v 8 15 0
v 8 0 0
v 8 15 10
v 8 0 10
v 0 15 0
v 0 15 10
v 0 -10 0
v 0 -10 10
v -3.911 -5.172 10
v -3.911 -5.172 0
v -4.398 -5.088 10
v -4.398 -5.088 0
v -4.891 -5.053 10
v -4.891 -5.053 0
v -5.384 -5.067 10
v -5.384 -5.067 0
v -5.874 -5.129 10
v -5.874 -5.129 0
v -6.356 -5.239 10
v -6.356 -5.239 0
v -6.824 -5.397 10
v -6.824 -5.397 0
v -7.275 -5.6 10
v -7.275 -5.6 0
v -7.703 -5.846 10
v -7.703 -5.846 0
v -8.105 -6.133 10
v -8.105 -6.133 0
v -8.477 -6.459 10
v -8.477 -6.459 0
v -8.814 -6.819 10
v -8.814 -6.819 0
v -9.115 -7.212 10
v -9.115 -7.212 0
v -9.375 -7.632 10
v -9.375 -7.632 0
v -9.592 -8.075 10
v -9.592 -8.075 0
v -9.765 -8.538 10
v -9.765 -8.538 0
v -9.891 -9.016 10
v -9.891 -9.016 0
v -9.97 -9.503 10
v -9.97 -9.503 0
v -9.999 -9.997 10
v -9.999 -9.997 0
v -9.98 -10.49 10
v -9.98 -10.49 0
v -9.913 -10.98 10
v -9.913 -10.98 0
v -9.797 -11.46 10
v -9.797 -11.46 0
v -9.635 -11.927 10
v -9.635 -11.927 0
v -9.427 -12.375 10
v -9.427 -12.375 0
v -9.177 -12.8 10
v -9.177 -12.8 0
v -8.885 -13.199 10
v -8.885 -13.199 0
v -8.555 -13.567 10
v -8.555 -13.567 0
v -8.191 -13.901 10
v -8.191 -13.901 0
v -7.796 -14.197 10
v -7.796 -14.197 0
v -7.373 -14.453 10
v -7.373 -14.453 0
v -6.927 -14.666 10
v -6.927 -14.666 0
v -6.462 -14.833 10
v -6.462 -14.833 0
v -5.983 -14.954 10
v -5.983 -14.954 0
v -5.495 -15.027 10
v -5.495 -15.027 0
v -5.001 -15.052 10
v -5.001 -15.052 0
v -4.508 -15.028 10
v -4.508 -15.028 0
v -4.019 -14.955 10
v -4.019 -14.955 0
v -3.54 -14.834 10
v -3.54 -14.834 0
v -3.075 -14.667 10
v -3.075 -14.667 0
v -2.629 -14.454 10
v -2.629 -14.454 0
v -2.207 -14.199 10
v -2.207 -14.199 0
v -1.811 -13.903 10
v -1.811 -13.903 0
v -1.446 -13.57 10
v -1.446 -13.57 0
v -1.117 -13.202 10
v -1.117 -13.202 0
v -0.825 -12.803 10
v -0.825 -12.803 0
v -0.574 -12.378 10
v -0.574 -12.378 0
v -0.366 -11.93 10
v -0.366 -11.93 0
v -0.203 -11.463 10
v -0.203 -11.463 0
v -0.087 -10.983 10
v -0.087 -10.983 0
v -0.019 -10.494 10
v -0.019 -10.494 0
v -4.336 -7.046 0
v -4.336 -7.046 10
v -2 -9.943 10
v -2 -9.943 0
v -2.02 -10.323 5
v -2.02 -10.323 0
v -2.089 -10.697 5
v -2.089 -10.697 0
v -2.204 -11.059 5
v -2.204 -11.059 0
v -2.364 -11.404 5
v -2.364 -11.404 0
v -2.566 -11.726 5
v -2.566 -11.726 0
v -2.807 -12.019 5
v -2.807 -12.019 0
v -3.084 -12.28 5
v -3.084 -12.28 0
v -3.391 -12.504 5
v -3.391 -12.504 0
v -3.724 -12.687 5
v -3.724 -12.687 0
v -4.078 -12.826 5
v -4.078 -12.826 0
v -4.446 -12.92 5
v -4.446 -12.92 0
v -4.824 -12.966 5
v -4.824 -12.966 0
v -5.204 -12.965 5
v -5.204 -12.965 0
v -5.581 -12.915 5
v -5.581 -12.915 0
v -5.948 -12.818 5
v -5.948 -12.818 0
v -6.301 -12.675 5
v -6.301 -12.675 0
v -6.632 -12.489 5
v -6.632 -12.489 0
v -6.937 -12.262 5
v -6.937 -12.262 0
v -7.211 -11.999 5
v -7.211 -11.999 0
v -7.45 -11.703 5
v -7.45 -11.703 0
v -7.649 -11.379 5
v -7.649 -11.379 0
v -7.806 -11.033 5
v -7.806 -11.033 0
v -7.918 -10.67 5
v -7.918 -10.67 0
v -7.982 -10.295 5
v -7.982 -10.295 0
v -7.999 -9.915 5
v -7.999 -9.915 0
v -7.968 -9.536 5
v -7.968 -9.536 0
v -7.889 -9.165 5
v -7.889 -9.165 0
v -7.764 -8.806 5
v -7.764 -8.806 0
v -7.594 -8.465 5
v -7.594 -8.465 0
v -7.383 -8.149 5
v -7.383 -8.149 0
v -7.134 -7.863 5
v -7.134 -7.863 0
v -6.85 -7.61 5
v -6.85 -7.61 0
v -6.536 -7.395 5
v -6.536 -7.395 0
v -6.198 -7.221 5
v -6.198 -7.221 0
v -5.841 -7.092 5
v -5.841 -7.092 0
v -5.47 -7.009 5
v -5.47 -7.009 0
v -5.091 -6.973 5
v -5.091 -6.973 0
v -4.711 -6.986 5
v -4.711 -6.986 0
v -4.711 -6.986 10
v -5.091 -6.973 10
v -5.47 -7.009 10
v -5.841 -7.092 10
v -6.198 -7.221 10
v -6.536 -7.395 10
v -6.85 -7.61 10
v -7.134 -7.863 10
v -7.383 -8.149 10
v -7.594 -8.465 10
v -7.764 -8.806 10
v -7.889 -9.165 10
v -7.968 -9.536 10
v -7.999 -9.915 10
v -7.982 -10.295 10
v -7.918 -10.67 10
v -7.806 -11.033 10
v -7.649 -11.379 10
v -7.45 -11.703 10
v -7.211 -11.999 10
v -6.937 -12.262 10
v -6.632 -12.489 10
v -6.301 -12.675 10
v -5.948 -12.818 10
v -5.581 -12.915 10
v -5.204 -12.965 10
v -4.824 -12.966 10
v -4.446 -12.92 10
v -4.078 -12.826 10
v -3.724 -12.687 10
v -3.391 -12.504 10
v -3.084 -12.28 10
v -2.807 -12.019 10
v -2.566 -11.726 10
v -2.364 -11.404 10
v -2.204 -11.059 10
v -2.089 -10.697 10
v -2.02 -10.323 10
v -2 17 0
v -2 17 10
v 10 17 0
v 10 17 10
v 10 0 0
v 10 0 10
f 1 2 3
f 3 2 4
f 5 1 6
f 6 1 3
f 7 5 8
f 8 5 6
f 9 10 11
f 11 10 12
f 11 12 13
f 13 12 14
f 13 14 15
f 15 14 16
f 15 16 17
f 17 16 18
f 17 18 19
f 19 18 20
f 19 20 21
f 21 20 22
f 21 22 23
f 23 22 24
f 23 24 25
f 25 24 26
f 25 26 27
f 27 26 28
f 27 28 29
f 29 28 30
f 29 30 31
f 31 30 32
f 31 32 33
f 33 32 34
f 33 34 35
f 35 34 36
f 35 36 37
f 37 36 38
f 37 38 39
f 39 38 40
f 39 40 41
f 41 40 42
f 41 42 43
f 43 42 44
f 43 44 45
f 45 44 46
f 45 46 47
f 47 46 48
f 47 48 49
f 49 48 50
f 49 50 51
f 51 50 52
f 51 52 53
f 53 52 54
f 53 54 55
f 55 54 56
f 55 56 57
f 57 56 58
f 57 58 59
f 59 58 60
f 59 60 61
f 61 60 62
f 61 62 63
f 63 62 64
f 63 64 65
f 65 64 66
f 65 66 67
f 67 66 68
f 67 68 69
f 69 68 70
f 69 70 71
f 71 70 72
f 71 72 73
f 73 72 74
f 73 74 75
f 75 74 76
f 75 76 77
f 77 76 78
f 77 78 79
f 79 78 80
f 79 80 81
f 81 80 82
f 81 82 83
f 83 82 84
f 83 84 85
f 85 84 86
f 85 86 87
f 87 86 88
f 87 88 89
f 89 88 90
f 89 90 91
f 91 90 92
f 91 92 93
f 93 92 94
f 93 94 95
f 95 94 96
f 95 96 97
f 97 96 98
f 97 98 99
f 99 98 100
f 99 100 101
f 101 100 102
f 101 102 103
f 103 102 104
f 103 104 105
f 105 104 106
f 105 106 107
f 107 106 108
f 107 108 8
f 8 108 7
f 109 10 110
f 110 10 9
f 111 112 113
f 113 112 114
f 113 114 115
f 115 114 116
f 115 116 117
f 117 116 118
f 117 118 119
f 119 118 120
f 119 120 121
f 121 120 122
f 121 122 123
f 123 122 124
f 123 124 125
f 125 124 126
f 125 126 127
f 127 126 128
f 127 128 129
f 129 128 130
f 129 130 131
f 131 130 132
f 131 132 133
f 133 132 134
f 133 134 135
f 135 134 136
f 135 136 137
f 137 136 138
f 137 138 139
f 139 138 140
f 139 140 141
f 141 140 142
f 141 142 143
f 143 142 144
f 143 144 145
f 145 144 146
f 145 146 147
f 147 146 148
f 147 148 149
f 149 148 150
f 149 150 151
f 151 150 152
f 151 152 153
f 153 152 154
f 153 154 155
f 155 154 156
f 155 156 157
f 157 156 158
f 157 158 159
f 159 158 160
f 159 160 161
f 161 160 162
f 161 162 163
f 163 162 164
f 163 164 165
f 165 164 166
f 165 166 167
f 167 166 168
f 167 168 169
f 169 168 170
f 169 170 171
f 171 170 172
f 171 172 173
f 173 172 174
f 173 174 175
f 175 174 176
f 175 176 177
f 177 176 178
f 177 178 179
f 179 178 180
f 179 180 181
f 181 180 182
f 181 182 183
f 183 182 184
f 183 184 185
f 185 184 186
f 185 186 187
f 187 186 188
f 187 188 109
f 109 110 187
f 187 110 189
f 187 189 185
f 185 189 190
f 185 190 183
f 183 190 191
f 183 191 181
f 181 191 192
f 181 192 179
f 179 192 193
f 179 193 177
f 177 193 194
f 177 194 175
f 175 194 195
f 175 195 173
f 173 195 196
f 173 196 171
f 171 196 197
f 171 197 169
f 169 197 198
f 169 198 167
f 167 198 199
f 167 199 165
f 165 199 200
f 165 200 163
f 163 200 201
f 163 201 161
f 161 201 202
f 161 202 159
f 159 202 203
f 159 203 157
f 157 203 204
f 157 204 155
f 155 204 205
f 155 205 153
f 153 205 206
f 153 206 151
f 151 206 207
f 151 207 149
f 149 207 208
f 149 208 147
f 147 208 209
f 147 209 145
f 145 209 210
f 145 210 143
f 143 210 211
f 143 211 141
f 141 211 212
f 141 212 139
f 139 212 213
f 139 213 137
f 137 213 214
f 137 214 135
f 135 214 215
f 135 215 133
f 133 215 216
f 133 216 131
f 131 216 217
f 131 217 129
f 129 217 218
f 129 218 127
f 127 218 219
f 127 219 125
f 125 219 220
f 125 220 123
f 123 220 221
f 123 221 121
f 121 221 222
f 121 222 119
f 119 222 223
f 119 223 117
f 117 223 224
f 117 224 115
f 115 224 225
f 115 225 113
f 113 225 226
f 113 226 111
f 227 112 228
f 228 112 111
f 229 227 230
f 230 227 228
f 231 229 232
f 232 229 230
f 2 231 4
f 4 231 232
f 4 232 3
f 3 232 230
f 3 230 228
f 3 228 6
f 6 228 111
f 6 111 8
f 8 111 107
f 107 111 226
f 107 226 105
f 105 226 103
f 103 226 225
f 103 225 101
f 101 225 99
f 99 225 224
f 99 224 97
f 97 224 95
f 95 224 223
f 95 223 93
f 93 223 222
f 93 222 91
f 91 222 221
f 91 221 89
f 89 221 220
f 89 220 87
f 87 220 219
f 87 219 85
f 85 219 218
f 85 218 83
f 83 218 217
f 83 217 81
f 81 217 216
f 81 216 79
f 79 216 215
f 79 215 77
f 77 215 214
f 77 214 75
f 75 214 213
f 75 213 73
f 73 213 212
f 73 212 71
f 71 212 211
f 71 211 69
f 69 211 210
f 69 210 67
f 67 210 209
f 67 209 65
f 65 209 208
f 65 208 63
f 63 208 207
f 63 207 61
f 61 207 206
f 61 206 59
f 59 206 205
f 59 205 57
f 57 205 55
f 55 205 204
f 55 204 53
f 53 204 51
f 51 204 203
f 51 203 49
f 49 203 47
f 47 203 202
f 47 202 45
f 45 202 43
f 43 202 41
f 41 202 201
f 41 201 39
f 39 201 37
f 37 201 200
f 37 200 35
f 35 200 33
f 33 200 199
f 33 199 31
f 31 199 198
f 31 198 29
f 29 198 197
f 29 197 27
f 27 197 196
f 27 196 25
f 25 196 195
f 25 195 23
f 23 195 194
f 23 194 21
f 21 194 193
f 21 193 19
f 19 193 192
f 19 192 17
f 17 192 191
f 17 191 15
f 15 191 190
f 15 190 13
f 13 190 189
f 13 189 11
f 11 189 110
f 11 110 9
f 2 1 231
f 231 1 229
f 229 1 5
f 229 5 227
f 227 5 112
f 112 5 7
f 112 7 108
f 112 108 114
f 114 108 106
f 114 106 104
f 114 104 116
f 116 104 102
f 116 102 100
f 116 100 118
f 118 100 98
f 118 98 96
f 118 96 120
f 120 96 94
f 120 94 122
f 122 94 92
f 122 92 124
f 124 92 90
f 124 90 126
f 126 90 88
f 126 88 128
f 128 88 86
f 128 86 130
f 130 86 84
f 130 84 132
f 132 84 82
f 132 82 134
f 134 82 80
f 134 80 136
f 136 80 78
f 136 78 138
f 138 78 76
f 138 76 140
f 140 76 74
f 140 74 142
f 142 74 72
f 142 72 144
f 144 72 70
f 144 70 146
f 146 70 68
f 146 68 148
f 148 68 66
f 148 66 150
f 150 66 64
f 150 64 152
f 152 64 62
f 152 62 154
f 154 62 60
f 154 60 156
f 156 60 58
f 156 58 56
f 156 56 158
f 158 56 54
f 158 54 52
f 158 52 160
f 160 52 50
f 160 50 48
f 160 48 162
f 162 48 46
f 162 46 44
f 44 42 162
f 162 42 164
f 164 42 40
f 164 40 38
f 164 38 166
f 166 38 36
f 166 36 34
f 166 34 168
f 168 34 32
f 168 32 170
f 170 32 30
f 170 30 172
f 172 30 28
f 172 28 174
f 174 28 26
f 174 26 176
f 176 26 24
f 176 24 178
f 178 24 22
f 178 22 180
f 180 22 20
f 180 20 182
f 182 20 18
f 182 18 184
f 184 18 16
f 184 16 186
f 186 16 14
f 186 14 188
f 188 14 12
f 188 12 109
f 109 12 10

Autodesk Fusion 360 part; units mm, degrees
sketch "Skizze1" plane through (0, 0, 0) normal (0, 0, 1) x (1, 0, 0)
  line L0 (8, 0) -> (8, 15)
  line L1 (8, 15) -> (0, 15)
  line L2 (0, 15) -> (0, -10)
  line L3 (8, 0) -> (10, 0)
  line L4 (10, 0) -> (10, 17)
  line L5 (10, 17) -> (-2, 17)
  line L6 (-2, 17) -> (-2, -10)
  line L7 (-2, -10) -> (0, -10)
  circle A0 centre (-4.9997, -10.052) radius 5
  circle A1 centre (-4.9999, -9.9716) radius 3
  line L8 (-3.9109, -5.172) -> (-4.9999, -9.9716)
  dimension "d2" = 8
  dimension "d3" = 15
  dimension "d4" = 25
  dimension "d5" = 2
  dimension "d6" = 2
  dimension "d7" = 2
  dimension "d8" = 10
  dimension "d9" = 6
extrude "Extrusion1" add sketch "Skizze1" along normal blind 10 contours L0 L1 L2 L3 L4 L5 L6 A0 | L7 A0 A1 L8 | L6 L7 A0 A1
equation "d6 = d5"
equation "d7 = d5"
